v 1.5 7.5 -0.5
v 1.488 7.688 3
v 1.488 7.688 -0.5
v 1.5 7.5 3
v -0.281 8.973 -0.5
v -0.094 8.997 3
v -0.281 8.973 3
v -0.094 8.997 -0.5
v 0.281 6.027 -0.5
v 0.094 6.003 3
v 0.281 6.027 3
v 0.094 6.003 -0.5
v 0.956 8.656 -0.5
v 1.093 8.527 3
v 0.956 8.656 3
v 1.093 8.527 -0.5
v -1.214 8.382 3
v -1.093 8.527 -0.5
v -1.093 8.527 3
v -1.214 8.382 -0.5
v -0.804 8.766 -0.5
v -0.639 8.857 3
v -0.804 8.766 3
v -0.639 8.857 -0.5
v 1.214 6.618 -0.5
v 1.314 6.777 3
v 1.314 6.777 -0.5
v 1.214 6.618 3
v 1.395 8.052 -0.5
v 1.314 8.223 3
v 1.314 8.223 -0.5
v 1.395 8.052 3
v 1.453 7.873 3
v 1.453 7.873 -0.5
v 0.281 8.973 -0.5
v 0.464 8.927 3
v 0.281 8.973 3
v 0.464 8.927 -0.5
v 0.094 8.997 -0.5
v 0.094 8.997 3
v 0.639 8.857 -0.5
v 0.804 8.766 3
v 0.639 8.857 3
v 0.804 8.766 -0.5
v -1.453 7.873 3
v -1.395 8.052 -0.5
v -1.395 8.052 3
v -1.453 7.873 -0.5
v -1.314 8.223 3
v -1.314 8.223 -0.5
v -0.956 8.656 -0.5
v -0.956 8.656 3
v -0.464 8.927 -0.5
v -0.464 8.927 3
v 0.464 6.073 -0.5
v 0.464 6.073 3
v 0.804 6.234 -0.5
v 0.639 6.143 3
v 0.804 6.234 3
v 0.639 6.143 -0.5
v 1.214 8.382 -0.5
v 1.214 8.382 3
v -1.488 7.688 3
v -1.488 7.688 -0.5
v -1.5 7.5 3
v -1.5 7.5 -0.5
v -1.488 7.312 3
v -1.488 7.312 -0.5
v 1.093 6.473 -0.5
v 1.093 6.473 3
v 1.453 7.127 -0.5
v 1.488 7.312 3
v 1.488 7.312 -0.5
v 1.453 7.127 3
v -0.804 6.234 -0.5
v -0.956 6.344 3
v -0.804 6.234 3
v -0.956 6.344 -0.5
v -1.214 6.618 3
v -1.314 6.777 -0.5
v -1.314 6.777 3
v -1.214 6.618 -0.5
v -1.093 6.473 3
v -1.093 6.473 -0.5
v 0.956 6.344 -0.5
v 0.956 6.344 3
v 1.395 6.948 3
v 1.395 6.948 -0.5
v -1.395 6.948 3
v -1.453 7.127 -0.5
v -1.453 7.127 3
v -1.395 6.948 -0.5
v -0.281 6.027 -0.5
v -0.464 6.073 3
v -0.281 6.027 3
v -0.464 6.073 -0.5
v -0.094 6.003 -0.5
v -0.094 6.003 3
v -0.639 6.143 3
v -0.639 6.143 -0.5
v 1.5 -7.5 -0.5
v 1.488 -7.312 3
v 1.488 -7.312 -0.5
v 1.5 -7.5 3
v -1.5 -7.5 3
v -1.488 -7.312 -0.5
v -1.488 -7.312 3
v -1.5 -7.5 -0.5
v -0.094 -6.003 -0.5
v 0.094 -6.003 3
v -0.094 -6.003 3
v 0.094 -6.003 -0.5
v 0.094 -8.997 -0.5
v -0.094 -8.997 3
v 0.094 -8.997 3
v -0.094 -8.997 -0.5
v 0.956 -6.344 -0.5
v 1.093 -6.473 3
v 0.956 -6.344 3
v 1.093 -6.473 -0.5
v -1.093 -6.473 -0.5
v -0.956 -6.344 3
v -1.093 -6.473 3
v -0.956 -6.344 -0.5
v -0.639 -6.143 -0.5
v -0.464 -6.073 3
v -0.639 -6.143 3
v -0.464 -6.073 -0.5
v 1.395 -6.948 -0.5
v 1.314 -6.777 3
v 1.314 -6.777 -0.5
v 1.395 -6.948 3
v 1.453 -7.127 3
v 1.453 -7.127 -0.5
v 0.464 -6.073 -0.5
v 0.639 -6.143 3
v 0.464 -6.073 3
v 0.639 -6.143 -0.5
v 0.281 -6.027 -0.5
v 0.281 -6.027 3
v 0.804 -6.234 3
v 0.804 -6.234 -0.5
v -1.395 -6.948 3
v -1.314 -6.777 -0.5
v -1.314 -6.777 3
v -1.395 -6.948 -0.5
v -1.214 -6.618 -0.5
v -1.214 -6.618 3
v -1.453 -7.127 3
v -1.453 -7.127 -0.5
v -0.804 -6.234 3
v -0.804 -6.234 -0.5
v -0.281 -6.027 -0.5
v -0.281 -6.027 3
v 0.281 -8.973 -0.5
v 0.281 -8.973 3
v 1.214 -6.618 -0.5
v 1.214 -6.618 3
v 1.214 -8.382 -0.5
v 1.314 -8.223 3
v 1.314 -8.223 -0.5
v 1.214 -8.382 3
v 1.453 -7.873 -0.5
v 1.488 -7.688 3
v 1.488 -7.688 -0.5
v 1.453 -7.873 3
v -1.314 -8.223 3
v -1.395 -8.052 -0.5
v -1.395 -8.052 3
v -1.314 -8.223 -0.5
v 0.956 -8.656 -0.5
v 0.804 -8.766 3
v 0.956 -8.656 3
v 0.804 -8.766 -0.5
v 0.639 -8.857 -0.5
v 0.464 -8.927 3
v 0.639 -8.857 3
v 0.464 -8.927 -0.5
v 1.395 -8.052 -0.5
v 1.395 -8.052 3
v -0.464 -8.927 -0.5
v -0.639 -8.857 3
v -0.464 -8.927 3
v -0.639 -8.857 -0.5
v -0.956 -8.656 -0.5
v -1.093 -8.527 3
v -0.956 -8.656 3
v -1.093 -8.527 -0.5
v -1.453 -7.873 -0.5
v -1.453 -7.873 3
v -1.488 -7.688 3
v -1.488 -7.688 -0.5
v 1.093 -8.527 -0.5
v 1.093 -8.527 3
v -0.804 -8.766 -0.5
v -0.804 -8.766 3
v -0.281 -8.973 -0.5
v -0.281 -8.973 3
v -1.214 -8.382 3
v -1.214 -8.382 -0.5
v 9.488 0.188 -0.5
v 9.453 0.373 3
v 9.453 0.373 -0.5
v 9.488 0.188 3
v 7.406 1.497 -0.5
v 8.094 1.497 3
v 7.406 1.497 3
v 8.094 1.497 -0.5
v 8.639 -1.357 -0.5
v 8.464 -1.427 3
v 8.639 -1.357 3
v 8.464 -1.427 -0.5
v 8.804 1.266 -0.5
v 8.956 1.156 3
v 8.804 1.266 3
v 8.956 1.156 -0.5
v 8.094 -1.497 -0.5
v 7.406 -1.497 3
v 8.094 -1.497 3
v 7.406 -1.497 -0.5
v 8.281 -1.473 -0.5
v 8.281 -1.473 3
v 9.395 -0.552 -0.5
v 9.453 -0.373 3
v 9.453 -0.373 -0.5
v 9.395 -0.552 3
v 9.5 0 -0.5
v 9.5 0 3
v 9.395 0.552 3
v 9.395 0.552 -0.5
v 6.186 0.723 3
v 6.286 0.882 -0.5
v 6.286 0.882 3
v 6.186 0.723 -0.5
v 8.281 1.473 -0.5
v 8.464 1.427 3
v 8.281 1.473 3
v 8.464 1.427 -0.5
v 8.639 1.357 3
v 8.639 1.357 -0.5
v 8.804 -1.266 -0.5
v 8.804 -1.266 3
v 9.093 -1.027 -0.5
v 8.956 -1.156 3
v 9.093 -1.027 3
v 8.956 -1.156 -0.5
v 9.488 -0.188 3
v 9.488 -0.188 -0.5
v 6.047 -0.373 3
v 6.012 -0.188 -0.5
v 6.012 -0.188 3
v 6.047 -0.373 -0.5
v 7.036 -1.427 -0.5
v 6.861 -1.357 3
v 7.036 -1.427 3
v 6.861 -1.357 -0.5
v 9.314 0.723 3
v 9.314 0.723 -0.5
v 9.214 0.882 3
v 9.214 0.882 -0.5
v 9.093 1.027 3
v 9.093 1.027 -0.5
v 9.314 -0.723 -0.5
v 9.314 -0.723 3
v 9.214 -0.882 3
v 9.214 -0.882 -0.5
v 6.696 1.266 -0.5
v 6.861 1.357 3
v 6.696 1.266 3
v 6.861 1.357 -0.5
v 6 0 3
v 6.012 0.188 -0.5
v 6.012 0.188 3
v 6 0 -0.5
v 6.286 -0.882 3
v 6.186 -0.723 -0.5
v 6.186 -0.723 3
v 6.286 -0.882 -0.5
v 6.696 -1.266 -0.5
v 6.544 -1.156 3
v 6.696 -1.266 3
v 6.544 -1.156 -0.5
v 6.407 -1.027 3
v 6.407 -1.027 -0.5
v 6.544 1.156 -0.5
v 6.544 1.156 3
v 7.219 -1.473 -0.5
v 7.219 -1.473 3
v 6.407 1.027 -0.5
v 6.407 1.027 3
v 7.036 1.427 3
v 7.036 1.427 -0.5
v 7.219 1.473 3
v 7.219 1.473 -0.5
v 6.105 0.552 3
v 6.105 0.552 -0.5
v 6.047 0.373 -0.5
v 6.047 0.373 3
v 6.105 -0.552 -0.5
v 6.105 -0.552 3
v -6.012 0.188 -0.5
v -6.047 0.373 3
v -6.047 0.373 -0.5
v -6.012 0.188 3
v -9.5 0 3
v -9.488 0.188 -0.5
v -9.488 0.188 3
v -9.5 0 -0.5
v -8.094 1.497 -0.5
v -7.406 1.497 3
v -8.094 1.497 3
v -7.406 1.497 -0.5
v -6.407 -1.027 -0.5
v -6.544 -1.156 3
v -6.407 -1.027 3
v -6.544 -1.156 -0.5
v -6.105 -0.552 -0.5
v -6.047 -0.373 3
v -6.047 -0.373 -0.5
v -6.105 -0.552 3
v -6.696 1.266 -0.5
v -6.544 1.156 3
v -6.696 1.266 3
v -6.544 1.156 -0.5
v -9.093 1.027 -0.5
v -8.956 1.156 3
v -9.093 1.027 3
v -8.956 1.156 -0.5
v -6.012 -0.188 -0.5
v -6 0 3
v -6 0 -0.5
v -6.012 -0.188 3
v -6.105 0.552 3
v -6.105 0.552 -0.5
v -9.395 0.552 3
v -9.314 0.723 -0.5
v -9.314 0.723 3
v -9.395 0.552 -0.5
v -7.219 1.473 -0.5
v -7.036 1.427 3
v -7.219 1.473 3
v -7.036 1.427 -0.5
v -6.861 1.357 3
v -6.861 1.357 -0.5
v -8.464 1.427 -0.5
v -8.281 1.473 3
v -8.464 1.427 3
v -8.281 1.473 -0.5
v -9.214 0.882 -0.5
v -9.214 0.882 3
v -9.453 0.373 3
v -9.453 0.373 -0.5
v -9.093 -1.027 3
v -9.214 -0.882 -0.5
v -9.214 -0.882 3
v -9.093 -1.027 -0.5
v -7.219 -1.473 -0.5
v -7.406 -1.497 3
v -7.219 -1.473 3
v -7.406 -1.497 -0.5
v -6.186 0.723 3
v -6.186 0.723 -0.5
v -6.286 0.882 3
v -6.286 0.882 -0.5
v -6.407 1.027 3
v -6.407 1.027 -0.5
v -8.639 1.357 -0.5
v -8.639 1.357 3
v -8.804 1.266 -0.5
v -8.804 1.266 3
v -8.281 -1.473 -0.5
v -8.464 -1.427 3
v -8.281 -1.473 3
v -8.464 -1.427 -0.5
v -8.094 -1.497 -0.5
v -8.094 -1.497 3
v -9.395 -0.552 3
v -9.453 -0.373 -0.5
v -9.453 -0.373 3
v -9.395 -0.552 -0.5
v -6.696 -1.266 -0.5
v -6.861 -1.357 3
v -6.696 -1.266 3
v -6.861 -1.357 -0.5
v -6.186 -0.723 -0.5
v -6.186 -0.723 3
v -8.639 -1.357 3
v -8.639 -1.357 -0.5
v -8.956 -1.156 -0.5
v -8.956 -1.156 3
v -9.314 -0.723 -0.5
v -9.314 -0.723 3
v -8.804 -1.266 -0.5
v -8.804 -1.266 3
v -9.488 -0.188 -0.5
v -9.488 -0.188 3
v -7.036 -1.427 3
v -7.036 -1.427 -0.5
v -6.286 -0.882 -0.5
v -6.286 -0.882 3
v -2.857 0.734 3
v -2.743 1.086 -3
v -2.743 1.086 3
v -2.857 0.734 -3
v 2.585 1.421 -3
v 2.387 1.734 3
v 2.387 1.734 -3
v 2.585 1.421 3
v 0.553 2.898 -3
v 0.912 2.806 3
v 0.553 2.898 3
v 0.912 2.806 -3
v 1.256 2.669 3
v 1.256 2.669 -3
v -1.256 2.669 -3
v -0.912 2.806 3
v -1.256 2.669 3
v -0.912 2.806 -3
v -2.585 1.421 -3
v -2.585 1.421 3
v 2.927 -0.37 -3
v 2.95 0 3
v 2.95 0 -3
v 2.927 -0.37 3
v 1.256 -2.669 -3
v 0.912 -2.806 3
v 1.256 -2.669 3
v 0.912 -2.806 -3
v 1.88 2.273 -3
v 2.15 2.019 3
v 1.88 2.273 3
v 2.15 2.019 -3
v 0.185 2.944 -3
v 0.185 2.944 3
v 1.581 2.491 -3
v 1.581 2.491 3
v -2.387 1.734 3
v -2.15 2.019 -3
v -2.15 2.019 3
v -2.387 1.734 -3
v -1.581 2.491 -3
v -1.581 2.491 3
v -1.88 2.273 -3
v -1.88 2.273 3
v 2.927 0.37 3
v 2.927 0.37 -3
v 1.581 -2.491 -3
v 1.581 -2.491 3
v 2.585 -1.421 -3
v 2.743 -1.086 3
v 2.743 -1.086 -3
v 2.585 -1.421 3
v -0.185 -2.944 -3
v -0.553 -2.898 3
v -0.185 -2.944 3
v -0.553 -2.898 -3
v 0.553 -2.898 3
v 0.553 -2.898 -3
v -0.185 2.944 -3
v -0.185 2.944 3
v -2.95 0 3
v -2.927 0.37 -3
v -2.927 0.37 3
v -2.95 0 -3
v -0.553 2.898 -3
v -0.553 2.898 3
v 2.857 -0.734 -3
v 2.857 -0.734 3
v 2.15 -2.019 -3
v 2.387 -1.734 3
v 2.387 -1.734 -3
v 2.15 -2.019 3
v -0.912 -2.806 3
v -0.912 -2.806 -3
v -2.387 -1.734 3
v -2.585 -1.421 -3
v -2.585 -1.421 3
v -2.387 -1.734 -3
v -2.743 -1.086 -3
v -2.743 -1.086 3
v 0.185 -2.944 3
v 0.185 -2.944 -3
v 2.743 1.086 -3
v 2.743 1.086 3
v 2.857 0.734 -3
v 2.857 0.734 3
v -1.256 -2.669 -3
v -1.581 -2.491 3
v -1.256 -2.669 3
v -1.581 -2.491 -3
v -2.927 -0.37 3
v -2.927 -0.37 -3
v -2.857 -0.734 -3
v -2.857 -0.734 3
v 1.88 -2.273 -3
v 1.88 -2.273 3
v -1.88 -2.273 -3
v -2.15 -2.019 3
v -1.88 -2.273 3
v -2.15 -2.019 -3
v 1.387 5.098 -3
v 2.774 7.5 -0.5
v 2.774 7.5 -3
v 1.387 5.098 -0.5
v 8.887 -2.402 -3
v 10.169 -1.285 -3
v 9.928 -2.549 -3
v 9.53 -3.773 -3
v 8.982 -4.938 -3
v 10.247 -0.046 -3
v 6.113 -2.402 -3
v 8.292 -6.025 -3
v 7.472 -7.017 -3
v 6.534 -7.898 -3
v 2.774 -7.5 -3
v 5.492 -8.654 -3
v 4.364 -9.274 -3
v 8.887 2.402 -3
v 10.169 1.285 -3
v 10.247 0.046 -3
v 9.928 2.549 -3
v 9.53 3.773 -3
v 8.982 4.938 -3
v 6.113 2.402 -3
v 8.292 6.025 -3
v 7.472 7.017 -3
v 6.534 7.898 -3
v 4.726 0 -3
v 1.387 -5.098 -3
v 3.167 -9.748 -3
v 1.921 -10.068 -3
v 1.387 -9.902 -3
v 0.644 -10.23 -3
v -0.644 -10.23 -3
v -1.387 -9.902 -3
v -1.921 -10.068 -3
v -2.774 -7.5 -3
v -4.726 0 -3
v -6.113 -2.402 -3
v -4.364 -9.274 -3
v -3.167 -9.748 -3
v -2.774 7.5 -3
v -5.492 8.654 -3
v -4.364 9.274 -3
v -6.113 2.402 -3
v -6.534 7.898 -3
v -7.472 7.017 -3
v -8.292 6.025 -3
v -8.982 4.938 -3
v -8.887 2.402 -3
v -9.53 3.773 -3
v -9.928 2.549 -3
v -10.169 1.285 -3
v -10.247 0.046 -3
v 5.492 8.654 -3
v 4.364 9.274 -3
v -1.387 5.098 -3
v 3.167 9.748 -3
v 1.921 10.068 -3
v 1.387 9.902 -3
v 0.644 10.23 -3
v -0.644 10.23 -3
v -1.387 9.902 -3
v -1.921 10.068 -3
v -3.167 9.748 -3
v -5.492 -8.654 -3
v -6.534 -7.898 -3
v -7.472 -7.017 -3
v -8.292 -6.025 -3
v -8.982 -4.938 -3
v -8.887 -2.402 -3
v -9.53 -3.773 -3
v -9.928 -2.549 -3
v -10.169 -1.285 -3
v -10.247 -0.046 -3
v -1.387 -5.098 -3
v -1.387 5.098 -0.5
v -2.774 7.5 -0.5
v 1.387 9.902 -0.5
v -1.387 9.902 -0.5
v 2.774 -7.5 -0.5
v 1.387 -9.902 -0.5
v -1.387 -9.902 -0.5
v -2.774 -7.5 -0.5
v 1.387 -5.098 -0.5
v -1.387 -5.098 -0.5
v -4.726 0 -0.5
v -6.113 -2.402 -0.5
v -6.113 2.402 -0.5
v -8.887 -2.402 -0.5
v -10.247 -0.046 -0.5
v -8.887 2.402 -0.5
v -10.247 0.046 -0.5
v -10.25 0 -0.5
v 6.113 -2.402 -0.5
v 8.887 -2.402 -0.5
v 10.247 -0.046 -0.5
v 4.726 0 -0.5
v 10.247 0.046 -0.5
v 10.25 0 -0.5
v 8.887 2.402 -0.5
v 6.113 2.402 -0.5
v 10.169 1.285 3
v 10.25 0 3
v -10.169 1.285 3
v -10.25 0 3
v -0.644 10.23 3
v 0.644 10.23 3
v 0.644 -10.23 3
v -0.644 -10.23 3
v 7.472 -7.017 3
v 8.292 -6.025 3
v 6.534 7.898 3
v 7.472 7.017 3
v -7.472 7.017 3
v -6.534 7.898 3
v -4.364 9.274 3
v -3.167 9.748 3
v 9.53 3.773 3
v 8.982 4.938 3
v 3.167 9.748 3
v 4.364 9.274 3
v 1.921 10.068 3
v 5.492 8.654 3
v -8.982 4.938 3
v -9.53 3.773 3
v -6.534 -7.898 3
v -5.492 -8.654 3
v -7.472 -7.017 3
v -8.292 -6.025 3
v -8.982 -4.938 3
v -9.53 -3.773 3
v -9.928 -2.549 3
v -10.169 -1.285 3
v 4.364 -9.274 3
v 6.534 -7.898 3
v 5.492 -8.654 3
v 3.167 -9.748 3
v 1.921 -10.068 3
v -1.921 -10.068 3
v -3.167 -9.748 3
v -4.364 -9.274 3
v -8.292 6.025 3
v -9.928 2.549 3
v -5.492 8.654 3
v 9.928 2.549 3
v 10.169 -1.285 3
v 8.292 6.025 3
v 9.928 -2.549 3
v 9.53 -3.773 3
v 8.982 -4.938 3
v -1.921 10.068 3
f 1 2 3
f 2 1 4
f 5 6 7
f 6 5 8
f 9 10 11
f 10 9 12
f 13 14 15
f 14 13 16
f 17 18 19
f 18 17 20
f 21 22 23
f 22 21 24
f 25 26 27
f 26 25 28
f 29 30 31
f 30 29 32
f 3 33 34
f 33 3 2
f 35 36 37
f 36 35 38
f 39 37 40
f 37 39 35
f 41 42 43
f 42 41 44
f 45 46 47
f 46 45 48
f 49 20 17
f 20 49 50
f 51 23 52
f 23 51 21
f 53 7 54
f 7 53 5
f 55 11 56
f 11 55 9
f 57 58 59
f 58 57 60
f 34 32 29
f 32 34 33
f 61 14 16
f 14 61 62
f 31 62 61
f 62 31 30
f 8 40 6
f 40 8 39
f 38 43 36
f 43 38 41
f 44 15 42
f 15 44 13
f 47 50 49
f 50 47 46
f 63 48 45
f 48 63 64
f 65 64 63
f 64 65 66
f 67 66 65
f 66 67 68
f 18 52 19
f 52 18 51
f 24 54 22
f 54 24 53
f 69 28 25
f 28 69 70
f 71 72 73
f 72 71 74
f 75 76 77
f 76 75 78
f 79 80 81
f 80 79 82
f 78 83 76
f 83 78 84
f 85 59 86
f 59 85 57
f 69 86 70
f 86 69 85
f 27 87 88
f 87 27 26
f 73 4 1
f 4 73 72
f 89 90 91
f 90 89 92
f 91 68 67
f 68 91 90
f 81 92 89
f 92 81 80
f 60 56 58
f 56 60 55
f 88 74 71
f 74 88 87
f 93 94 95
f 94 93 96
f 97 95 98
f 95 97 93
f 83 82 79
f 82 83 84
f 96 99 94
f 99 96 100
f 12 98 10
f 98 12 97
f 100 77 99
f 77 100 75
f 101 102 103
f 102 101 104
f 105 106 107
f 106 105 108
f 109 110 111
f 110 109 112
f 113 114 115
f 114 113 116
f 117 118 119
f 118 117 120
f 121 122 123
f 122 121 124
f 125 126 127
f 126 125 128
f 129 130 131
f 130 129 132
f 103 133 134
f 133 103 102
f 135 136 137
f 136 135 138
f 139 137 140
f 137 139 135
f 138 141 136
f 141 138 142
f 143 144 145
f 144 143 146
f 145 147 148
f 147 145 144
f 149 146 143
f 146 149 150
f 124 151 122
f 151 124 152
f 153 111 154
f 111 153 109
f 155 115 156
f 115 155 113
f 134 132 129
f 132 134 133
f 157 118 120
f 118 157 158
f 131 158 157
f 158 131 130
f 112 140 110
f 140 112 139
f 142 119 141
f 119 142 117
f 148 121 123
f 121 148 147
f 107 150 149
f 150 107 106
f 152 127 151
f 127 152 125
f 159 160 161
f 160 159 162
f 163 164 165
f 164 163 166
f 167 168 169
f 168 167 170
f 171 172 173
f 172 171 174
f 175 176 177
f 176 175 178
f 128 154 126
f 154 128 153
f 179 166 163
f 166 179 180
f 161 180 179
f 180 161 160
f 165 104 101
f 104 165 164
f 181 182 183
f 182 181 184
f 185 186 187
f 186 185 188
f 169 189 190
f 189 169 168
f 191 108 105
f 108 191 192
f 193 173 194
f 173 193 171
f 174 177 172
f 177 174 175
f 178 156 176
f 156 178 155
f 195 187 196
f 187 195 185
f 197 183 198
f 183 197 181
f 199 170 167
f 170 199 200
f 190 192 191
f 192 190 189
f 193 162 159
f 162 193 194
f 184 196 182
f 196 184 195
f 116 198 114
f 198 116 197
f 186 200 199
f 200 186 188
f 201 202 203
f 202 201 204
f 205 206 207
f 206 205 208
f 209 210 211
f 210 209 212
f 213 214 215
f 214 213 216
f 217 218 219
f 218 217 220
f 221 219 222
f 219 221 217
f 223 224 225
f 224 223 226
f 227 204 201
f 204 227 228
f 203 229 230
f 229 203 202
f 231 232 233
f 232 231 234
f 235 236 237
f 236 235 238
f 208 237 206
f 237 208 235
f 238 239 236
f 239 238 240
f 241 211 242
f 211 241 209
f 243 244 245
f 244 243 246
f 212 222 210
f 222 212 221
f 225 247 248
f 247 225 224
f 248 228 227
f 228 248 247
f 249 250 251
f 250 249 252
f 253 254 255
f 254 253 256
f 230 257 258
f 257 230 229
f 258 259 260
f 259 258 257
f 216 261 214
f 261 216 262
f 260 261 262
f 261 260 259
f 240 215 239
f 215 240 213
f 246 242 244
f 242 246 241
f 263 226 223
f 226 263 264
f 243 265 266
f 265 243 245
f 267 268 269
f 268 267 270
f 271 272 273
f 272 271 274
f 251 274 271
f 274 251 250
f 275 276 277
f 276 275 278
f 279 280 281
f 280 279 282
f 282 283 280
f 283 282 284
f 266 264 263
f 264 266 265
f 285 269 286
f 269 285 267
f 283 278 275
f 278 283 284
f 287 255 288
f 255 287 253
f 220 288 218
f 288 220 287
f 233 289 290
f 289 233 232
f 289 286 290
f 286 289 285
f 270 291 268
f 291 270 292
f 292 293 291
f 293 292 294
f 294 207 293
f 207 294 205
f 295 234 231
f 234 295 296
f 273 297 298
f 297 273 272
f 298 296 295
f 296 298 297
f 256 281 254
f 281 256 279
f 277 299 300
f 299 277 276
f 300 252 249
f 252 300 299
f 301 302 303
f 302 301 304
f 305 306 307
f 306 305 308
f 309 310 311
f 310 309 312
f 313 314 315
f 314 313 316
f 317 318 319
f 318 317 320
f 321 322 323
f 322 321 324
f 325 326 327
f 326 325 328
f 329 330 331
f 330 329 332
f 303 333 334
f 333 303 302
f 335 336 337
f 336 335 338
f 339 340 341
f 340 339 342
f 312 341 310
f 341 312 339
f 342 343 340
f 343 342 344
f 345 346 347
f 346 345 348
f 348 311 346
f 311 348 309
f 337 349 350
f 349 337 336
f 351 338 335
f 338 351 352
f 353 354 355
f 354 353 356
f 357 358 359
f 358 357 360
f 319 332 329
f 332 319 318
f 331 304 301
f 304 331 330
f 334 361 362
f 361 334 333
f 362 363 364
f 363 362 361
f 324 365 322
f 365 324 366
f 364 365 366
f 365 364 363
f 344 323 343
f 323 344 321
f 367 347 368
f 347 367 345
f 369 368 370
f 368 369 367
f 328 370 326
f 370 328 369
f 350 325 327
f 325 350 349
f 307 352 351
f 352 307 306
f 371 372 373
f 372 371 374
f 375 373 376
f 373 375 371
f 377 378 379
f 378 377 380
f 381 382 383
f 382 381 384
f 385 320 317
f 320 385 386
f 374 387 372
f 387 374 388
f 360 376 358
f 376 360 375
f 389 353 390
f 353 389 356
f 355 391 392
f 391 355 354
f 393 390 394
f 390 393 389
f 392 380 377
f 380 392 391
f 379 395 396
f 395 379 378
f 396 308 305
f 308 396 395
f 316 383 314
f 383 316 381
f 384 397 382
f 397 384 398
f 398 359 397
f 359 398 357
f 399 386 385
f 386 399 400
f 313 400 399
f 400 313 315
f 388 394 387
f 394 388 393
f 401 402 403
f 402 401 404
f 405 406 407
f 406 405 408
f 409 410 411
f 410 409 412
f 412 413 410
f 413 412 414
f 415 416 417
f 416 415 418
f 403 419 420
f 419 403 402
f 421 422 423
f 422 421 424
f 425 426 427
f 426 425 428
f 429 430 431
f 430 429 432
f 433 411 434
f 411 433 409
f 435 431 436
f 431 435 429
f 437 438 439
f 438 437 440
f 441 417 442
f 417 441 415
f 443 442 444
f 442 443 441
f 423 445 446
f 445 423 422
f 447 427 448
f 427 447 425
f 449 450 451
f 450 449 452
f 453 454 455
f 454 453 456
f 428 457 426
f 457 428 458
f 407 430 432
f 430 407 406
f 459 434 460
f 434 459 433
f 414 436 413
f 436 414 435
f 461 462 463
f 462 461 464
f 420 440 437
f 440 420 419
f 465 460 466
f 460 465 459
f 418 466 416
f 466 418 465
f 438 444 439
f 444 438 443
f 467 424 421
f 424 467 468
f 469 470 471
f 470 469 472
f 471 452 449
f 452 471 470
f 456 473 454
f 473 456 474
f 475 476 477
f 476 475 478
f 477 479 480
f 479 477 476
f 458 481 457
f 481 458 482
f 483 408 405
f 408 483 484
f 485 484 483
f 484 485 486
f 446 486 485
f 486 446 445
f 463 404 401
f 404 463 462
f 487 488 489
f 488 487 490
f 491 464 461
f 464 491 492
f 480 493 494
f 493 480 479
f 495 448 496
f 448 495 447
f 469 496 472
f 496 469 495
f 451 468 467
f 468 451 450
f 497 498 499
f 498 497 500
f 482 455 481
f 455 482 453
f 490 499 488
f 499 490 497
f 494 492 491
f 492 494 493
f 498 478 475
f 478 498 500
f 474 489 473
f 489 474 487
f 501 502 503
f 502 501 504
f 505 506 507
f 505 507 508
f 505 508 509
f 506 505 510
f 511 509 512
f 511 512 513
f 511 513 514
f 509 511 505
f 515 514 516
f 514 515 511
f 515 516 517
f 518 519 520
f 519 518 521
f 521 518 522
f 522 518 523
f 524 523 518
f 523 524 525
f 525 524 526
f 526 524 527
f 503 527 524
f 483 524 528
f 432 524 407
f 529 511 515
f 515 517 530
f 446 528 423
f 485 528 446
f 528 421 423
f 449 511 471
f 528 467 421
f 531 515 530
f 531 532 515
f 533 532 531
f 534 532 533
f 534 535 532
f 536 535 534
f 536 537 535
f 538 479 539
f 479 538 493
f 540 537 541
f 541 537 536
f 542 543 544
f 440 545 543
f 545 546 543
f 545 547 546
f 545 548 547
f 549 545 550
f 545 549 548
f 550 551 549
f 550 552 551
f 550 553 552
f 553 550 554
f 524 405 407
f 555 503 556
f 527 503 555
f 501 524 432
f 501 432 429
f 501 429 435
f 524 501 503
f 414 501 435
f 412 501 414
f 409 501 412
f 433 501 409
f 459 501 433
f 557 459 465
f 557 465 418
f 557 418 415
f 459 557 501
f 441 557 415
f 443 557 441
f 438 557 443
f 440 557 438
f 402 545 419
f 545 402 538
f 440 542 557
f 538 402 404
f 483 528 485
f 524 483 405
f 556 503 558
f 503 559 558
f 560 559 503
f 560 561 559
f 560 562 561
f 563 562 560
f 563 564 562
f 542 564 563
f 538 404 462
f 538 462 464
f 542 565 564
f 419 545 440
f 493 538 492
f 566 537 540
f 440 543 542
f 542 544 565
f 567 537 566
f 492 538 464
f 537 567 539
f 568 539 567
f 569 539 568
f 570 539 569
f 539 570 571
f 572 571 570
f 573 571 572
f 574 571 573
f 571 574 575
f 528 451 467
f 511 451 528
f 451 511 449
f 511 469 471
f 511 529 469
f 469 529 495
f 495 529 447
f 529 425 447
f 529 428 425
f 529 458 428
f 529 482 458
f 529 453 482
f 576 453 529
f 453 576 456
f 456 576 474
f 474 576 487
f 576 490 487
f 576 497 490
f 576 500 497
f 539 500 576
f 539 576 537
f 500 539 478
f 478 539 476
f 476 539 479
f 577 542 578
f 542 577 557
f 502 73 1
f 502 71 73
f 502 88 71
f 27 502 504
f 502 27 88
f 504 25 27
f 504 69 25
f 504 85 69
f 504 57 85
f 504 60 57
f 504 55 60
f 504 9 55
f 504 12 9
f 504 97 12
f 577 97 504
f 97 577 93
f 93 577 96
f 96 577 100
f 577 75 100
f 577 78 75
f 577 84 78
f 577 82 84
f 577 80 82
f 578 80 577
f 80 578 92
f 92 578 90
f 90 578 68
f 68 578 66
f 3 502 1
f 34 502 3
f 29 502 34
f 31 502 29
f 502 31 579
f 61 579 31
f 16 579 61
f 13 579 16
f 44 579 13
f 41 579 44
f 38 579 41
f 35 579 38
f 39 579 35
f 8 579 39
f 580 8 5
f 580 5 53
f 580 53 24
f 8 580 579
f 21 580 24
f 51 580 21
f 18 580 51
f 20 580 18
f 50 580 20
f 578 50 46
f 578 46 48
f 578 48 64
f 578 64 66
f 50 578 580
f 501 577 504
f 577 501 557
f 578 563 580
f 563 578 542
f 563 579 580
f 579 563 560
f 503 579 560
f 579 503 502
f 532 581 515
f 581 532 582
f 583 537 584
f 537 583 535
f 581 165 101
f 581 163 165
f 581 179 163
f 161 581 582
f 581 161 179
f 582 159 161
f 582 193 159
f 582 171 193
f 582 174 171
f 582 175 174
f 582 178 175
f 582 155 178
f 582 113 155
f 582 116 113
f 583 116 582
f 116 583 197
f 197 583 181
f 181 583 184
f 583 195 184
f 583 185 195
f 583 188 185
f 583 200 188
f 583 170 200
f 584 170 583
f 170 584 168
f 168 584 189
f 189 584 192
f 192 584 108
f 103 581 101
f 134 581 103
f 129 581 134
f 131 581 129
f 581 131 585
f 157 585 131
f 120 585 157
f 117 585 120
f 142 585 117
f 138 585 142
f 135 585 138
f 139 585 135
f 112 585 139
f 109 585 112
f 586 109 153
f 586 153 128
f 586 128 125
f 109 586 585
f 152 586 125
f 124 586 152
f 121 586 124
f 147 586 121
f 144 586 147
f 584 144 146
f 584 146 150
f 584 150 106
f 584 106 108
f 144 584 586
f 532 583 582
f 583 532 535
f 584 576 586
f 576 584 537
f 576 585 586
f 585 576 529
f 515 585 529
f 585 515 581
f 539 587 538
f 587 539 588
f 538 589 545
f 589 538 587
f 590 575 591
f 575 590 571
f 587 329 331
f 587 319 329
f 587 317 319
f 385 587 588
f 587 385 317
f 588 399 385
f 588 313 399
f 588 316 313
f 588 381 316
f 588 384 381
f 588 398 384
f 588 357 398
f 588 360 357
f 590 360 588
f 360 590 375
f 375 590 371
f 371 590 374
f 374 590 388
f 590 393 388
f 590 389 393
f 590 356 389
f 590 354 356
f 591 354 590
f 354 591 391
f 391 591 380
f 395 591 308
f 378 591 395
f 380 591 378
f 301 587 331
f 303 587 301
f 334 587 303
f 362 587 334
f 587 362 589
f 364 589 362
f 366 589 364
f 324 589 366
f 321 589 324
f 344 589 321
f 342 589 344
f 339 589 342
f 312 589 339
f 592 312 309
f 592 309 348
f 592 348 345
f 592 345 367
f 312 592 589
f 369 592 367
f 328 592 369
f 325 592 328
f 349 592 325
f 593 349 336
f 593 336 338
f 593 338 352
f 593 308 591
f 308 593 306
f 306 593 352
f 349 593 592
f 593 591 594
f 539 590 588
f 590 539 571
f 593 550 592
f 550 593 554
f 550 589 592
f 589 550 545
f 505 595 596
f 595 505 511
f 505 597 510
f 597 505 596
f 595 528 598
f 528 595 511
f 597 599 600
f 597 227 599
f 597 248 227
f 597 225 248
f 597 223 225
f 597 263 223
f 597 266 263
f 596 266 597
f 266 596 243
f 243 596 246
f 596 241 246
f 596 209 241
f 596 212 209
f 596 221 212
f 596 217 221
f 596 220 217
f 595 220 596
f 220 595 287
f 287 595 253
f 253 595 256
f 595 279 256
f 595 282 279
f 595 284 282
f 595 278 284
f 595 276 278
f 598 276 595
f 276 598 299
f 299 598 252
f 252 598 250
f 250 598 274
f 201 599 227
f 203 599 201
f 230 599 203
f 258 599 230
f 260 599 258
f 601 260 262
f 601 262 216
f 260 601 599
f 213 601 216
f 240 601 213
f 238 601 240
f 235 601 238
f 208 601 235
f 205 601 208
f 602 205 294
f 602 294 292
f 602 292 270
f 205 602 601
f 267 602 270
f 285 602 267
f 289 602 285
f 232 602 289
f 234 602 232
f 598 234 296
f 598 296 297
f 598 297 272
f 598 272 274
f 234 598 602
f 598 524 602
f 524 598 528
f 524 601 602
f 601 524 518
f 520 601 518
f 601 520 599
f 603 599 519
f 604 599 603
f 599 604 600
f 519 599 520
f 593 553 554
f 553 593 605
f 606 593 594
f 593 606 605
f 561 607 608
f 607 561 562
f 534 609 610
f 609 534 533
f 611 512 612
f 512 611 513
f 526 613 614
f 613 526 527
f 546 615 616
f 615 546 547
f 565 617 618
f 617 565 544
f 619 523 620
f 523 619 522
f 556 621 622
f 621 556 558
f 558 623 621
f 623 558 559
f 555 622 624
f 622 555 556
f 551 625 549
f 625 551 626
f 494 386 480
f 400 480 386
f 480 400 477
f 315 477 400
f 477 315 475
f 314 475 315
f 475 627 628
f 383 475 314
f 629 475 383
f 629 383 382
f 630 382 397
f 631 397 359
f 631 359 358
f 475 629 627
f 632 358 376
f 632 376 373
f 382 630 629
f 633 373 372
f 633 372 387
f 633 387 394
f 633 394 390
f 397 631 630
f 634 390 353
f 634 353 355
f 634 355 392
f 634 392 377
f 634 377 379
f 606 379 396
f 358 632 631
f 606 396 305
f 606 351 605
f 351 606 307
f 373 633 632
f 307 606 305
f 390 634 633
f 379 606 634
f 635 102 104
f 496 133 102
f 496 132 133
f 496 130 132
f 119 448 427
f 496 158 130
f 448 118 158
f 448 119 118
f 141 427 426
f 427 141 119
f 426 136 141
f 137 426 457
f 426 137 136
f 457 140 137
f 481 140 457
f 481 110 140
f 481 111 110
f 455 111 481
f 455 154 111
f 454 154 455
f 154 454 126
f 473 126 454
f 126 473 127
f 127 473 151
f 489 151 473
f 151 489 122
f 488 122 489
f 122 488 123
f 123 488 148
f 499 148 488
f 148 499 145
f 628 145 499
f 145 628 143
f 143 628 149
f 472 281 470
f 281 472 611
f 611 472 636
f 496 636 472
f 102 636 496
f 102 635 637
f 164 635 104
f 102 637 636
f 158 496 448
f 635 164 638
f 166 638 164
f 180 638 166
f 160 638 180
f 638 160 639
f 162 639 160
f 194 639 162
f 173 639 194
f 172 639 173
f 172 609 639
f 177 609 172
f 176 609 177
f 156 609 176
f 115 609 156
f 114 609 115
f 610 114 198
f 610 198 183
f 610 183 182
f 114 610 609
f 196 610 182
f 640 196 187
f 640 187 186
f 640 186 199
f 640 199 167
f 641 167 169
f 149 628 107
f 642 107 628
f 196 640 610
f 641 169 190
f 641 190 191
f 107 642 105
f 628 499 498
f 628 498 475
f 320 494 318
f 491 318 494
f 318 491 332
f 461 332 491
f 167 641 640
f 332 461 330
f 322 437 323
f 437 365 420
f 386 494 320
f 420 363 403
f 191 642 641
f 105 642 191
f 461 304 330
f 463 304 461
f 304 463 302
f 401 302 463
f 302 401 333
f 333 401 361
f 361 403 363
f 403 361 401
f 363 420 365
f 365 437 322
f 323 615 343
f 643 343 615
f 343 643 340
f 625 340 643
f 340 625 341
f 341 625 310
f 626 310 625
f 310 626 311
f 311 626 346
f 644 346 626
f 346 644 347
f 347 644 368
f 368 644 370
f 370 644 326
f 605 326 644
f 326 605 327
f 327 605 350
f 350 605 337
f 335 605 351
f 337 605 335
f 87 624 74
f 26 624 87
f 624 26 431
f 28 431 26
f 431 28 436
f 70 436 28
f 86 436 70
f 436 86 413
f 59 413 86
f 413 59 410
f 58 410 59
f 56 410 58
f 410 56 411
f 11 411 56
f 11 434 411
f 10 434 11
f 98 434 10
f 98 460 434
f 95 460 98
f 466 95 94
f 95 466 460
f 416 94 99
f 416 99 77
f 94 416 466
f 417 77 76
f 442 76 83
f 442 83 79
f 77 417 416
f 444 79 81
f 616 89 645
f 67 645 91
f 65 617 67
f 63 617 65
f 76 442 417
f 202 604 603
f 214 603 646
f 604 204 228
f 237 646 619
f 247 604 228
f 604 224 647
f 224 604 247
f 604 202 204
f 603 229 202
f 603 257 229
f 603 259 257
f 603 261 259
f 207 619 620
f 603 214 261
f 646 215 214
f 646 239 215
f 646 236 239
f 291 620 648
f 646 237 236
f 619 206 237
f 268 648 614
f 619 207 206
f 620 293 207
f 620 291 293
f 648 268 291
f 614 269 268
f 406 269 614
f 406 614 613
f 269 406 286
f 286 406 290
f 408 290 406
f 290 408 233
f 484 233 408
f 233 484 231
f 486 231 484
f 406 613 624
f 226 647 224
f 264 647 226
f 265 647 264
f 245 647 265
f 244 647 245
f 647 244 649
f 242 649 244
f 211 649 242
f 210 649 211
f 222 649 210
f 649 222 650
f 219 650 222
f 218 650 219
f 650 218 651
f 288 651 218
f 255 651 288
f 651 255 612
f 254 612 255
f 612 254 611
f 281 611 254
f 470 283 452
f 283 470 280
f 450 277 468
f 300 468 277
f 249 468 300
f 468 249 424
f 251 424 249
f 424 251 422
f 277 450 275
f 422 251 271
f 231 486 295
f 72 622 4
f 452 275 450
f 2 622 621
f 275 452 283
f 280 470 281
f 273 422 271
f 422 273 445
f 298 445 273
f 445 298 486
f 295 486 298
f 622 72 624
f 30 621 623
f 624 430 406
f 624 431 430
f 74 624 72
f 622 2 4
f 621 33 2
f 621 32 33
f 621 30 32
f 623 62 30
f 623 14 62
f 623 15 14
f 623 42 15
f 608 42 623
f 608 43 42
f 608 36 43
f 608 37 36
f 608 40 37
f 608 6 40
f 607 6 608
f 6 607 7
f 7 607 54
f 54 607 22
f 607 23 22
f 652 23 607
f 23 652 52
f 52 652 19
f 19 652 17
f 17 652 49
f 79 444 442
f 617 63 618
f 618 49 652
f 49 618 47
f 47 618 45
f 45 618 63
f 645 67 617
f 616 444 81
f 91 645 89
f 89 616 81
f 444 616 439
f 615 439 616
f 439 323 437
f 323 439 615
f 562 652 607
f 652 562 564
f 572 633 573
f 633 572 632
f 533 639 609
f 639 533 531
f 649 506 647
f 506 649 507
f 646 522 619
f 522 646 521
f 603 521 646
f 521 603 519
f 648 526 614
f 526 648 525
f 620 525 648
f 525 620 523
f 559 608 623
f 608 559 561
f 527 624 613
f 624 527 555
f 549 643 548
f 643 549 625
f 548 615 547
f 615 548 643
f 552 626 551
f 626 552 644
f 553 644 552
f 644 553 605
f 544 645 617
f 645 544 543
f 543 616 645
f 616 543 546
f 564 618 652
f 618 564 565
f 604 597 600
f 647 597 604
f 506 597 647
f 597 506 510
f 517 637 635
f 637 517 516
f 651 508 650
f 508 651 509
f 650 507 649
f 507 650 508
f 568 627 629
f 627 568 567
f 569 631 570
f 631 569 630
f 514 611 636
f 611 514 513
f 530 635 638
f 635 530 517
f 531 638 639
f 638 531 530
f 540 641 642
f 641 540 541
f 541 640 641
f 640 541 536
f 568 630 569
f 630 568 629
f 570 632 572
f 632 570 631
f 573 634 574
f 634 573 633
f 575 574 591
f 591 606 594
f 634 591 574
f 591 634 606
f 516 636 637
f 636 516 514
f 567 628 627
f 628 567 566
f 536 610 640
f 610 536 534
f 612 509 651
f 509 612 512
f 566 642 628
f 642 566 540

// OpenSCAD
$fn = 50;


difference() {
	union() {
		translate(v = [0, 0, -3.0000000000]) {
			rotate(a = [0, 0, 0]) {
				cylinder(h = 6, r = 10.2500000000);
			}
		}
	}
	union() {
		translate(v = [0, 7.5000000000, -125.0000000000]) {
			rotate(a = [0, 0, 0]) {
				cylinder(h = 250, r = 1.5000000000);
			}
		}
		translate(v = [0, -7.5000000000, -125.0000000000]) {
			rotate(a = [0, 0, 0]) {
				cylinder(h = 250, r = 1.5000000000);
			}
		}
		translate(v = [7.7500000000, 0, -125.0000000000]) {
			rotate(a = [0, 0, 0]) {
				hull() {
					translate(v = [0.2500000000, 0, 0]) {
						rotate(a = [0, 0, 0]) {
							translate(v = [0, 0, 0]) {
								rotate(a = [0, 0, 0]) {
									cylinder(h = 250, r = 1.5000000000);
								}
							}
						}
					}
					translate(v = [-0.2500000000, 0, 0]) {
						rotate(a = [0, 0, 0]) {
							translate(v = [0, 0, 0]) {
								rotate(a = [0, 0, 0]) {
									cylinder(h = 250, r = 1.5000000000);
								}
							}
						}
					}
				}
			}
		}
		translate(v = [-7.7500000000, 0, -125.0000000000]) {
			rotate(a = [0, 0, 0]) {
				hull() {
					translate(v = [0.2500000000, 0, 0]) {
						rotate(a = [0, 0, 0]) {
							translate(v = [0, 0, 0]) {
								rotate(a = [0, 0, 0]) {
									cylinder(h = 250, r = 1.5000000000);
								}
							}
						}
					}
					translate(v = [-0.2500000000, 0, 0]) {
						rotate(a = [0, 0, 0]) {
							translate(v = [0, 0, 0]) {
								rotate(a = [0, 0, 0]) {
									cylinder(h = 250, r = 1.5000000000);
								}
							}
						}
					}
				}
			}
		}
		translate(v = [0, 0, -125.0000000000]) {
			rotate(a = [0, 0, 0]) {
				cylinder(h = 250, r = 2.9500000000);
			}
		}
		translate(v = [0, 7.5000000000, -3.0000000000]) {
			rotate(a = [0, 0, 0]) {
				#translate(v = [0, 0, 0]) {
					rotate(a = [0, 0, 0]) {
						linear_extrude(height = 2.5000000000) {
							polygon(points = [[2.7735000000, 0.0000000000], [1.3867500000, 2.4019214574], [-1.3867500000, 2.4019214574], [-2.7735000000, 0.0000000000], [-1.3867500000, -2.4019214574], [1.3867500000, -2.4019214574]]);
						}
					}
				}
			}
		}
		translate(v = [0, -7.5000000000, -3.0000000000]) {
			rotate(a = [0, 0, 0]) {
				#translate(v = [0, 0, 0]) {
					rotate(a = [0, 0, 0]) {
						linear_extrude(height = 2.5000000000) {
							polygon(points = [[2.7735000000, 0.0000000000], [1.3867500000, 2.4019214574], [-1.3867500000, 2.4019214574], [-2.7735000000, 0.0000000000], [-1.3867500000, -2.4019214574], [1.3867500000, -2.4019214574]]);
						}
					}
				}
			}
		}
		translate(v = [-7.5000000000, 0, -3.0000000000]) {
			rotate(a = [0, 0, 0]) {
				#translate(v = [0, 0, 0]) {
					rotate(a = [0, 0, 0]) {
						linear_extrude(height = 2.5000000000) {
							polygon(points = [[2.7735000000, 0.0000000000], [1.3867500000, 2.4019214574], [-1.3867500000, 2.4019214574], [-2.7735000000, 0.0000000000], [-1.3867500000, -2.4019214574], [1.3867500000, -2.4019214574]]);
						}
					}
				}
			}
		}
		translate(v = [7.5000000000, 0, -3.0000000000]) {
			rotate(a = [0, 0, 0]) {
				#translate(v = [0, 0, 0]) {
					rotate(a = [0, 0, 0]) {
						linear_extrude(height = 2.5000000000) {
							polygon(points = [[2.7735000000, 0.0000000000], [1.3867500000, 2.4019214574], [-1.3867500000, 2.4019214574], [-2.7735000000, 0.0000000000], [-1.3867500000, -2.4019214574], [1.3867500000, -2.4019214574]]);
						}
					}
				}
			}
		}
	}
}
